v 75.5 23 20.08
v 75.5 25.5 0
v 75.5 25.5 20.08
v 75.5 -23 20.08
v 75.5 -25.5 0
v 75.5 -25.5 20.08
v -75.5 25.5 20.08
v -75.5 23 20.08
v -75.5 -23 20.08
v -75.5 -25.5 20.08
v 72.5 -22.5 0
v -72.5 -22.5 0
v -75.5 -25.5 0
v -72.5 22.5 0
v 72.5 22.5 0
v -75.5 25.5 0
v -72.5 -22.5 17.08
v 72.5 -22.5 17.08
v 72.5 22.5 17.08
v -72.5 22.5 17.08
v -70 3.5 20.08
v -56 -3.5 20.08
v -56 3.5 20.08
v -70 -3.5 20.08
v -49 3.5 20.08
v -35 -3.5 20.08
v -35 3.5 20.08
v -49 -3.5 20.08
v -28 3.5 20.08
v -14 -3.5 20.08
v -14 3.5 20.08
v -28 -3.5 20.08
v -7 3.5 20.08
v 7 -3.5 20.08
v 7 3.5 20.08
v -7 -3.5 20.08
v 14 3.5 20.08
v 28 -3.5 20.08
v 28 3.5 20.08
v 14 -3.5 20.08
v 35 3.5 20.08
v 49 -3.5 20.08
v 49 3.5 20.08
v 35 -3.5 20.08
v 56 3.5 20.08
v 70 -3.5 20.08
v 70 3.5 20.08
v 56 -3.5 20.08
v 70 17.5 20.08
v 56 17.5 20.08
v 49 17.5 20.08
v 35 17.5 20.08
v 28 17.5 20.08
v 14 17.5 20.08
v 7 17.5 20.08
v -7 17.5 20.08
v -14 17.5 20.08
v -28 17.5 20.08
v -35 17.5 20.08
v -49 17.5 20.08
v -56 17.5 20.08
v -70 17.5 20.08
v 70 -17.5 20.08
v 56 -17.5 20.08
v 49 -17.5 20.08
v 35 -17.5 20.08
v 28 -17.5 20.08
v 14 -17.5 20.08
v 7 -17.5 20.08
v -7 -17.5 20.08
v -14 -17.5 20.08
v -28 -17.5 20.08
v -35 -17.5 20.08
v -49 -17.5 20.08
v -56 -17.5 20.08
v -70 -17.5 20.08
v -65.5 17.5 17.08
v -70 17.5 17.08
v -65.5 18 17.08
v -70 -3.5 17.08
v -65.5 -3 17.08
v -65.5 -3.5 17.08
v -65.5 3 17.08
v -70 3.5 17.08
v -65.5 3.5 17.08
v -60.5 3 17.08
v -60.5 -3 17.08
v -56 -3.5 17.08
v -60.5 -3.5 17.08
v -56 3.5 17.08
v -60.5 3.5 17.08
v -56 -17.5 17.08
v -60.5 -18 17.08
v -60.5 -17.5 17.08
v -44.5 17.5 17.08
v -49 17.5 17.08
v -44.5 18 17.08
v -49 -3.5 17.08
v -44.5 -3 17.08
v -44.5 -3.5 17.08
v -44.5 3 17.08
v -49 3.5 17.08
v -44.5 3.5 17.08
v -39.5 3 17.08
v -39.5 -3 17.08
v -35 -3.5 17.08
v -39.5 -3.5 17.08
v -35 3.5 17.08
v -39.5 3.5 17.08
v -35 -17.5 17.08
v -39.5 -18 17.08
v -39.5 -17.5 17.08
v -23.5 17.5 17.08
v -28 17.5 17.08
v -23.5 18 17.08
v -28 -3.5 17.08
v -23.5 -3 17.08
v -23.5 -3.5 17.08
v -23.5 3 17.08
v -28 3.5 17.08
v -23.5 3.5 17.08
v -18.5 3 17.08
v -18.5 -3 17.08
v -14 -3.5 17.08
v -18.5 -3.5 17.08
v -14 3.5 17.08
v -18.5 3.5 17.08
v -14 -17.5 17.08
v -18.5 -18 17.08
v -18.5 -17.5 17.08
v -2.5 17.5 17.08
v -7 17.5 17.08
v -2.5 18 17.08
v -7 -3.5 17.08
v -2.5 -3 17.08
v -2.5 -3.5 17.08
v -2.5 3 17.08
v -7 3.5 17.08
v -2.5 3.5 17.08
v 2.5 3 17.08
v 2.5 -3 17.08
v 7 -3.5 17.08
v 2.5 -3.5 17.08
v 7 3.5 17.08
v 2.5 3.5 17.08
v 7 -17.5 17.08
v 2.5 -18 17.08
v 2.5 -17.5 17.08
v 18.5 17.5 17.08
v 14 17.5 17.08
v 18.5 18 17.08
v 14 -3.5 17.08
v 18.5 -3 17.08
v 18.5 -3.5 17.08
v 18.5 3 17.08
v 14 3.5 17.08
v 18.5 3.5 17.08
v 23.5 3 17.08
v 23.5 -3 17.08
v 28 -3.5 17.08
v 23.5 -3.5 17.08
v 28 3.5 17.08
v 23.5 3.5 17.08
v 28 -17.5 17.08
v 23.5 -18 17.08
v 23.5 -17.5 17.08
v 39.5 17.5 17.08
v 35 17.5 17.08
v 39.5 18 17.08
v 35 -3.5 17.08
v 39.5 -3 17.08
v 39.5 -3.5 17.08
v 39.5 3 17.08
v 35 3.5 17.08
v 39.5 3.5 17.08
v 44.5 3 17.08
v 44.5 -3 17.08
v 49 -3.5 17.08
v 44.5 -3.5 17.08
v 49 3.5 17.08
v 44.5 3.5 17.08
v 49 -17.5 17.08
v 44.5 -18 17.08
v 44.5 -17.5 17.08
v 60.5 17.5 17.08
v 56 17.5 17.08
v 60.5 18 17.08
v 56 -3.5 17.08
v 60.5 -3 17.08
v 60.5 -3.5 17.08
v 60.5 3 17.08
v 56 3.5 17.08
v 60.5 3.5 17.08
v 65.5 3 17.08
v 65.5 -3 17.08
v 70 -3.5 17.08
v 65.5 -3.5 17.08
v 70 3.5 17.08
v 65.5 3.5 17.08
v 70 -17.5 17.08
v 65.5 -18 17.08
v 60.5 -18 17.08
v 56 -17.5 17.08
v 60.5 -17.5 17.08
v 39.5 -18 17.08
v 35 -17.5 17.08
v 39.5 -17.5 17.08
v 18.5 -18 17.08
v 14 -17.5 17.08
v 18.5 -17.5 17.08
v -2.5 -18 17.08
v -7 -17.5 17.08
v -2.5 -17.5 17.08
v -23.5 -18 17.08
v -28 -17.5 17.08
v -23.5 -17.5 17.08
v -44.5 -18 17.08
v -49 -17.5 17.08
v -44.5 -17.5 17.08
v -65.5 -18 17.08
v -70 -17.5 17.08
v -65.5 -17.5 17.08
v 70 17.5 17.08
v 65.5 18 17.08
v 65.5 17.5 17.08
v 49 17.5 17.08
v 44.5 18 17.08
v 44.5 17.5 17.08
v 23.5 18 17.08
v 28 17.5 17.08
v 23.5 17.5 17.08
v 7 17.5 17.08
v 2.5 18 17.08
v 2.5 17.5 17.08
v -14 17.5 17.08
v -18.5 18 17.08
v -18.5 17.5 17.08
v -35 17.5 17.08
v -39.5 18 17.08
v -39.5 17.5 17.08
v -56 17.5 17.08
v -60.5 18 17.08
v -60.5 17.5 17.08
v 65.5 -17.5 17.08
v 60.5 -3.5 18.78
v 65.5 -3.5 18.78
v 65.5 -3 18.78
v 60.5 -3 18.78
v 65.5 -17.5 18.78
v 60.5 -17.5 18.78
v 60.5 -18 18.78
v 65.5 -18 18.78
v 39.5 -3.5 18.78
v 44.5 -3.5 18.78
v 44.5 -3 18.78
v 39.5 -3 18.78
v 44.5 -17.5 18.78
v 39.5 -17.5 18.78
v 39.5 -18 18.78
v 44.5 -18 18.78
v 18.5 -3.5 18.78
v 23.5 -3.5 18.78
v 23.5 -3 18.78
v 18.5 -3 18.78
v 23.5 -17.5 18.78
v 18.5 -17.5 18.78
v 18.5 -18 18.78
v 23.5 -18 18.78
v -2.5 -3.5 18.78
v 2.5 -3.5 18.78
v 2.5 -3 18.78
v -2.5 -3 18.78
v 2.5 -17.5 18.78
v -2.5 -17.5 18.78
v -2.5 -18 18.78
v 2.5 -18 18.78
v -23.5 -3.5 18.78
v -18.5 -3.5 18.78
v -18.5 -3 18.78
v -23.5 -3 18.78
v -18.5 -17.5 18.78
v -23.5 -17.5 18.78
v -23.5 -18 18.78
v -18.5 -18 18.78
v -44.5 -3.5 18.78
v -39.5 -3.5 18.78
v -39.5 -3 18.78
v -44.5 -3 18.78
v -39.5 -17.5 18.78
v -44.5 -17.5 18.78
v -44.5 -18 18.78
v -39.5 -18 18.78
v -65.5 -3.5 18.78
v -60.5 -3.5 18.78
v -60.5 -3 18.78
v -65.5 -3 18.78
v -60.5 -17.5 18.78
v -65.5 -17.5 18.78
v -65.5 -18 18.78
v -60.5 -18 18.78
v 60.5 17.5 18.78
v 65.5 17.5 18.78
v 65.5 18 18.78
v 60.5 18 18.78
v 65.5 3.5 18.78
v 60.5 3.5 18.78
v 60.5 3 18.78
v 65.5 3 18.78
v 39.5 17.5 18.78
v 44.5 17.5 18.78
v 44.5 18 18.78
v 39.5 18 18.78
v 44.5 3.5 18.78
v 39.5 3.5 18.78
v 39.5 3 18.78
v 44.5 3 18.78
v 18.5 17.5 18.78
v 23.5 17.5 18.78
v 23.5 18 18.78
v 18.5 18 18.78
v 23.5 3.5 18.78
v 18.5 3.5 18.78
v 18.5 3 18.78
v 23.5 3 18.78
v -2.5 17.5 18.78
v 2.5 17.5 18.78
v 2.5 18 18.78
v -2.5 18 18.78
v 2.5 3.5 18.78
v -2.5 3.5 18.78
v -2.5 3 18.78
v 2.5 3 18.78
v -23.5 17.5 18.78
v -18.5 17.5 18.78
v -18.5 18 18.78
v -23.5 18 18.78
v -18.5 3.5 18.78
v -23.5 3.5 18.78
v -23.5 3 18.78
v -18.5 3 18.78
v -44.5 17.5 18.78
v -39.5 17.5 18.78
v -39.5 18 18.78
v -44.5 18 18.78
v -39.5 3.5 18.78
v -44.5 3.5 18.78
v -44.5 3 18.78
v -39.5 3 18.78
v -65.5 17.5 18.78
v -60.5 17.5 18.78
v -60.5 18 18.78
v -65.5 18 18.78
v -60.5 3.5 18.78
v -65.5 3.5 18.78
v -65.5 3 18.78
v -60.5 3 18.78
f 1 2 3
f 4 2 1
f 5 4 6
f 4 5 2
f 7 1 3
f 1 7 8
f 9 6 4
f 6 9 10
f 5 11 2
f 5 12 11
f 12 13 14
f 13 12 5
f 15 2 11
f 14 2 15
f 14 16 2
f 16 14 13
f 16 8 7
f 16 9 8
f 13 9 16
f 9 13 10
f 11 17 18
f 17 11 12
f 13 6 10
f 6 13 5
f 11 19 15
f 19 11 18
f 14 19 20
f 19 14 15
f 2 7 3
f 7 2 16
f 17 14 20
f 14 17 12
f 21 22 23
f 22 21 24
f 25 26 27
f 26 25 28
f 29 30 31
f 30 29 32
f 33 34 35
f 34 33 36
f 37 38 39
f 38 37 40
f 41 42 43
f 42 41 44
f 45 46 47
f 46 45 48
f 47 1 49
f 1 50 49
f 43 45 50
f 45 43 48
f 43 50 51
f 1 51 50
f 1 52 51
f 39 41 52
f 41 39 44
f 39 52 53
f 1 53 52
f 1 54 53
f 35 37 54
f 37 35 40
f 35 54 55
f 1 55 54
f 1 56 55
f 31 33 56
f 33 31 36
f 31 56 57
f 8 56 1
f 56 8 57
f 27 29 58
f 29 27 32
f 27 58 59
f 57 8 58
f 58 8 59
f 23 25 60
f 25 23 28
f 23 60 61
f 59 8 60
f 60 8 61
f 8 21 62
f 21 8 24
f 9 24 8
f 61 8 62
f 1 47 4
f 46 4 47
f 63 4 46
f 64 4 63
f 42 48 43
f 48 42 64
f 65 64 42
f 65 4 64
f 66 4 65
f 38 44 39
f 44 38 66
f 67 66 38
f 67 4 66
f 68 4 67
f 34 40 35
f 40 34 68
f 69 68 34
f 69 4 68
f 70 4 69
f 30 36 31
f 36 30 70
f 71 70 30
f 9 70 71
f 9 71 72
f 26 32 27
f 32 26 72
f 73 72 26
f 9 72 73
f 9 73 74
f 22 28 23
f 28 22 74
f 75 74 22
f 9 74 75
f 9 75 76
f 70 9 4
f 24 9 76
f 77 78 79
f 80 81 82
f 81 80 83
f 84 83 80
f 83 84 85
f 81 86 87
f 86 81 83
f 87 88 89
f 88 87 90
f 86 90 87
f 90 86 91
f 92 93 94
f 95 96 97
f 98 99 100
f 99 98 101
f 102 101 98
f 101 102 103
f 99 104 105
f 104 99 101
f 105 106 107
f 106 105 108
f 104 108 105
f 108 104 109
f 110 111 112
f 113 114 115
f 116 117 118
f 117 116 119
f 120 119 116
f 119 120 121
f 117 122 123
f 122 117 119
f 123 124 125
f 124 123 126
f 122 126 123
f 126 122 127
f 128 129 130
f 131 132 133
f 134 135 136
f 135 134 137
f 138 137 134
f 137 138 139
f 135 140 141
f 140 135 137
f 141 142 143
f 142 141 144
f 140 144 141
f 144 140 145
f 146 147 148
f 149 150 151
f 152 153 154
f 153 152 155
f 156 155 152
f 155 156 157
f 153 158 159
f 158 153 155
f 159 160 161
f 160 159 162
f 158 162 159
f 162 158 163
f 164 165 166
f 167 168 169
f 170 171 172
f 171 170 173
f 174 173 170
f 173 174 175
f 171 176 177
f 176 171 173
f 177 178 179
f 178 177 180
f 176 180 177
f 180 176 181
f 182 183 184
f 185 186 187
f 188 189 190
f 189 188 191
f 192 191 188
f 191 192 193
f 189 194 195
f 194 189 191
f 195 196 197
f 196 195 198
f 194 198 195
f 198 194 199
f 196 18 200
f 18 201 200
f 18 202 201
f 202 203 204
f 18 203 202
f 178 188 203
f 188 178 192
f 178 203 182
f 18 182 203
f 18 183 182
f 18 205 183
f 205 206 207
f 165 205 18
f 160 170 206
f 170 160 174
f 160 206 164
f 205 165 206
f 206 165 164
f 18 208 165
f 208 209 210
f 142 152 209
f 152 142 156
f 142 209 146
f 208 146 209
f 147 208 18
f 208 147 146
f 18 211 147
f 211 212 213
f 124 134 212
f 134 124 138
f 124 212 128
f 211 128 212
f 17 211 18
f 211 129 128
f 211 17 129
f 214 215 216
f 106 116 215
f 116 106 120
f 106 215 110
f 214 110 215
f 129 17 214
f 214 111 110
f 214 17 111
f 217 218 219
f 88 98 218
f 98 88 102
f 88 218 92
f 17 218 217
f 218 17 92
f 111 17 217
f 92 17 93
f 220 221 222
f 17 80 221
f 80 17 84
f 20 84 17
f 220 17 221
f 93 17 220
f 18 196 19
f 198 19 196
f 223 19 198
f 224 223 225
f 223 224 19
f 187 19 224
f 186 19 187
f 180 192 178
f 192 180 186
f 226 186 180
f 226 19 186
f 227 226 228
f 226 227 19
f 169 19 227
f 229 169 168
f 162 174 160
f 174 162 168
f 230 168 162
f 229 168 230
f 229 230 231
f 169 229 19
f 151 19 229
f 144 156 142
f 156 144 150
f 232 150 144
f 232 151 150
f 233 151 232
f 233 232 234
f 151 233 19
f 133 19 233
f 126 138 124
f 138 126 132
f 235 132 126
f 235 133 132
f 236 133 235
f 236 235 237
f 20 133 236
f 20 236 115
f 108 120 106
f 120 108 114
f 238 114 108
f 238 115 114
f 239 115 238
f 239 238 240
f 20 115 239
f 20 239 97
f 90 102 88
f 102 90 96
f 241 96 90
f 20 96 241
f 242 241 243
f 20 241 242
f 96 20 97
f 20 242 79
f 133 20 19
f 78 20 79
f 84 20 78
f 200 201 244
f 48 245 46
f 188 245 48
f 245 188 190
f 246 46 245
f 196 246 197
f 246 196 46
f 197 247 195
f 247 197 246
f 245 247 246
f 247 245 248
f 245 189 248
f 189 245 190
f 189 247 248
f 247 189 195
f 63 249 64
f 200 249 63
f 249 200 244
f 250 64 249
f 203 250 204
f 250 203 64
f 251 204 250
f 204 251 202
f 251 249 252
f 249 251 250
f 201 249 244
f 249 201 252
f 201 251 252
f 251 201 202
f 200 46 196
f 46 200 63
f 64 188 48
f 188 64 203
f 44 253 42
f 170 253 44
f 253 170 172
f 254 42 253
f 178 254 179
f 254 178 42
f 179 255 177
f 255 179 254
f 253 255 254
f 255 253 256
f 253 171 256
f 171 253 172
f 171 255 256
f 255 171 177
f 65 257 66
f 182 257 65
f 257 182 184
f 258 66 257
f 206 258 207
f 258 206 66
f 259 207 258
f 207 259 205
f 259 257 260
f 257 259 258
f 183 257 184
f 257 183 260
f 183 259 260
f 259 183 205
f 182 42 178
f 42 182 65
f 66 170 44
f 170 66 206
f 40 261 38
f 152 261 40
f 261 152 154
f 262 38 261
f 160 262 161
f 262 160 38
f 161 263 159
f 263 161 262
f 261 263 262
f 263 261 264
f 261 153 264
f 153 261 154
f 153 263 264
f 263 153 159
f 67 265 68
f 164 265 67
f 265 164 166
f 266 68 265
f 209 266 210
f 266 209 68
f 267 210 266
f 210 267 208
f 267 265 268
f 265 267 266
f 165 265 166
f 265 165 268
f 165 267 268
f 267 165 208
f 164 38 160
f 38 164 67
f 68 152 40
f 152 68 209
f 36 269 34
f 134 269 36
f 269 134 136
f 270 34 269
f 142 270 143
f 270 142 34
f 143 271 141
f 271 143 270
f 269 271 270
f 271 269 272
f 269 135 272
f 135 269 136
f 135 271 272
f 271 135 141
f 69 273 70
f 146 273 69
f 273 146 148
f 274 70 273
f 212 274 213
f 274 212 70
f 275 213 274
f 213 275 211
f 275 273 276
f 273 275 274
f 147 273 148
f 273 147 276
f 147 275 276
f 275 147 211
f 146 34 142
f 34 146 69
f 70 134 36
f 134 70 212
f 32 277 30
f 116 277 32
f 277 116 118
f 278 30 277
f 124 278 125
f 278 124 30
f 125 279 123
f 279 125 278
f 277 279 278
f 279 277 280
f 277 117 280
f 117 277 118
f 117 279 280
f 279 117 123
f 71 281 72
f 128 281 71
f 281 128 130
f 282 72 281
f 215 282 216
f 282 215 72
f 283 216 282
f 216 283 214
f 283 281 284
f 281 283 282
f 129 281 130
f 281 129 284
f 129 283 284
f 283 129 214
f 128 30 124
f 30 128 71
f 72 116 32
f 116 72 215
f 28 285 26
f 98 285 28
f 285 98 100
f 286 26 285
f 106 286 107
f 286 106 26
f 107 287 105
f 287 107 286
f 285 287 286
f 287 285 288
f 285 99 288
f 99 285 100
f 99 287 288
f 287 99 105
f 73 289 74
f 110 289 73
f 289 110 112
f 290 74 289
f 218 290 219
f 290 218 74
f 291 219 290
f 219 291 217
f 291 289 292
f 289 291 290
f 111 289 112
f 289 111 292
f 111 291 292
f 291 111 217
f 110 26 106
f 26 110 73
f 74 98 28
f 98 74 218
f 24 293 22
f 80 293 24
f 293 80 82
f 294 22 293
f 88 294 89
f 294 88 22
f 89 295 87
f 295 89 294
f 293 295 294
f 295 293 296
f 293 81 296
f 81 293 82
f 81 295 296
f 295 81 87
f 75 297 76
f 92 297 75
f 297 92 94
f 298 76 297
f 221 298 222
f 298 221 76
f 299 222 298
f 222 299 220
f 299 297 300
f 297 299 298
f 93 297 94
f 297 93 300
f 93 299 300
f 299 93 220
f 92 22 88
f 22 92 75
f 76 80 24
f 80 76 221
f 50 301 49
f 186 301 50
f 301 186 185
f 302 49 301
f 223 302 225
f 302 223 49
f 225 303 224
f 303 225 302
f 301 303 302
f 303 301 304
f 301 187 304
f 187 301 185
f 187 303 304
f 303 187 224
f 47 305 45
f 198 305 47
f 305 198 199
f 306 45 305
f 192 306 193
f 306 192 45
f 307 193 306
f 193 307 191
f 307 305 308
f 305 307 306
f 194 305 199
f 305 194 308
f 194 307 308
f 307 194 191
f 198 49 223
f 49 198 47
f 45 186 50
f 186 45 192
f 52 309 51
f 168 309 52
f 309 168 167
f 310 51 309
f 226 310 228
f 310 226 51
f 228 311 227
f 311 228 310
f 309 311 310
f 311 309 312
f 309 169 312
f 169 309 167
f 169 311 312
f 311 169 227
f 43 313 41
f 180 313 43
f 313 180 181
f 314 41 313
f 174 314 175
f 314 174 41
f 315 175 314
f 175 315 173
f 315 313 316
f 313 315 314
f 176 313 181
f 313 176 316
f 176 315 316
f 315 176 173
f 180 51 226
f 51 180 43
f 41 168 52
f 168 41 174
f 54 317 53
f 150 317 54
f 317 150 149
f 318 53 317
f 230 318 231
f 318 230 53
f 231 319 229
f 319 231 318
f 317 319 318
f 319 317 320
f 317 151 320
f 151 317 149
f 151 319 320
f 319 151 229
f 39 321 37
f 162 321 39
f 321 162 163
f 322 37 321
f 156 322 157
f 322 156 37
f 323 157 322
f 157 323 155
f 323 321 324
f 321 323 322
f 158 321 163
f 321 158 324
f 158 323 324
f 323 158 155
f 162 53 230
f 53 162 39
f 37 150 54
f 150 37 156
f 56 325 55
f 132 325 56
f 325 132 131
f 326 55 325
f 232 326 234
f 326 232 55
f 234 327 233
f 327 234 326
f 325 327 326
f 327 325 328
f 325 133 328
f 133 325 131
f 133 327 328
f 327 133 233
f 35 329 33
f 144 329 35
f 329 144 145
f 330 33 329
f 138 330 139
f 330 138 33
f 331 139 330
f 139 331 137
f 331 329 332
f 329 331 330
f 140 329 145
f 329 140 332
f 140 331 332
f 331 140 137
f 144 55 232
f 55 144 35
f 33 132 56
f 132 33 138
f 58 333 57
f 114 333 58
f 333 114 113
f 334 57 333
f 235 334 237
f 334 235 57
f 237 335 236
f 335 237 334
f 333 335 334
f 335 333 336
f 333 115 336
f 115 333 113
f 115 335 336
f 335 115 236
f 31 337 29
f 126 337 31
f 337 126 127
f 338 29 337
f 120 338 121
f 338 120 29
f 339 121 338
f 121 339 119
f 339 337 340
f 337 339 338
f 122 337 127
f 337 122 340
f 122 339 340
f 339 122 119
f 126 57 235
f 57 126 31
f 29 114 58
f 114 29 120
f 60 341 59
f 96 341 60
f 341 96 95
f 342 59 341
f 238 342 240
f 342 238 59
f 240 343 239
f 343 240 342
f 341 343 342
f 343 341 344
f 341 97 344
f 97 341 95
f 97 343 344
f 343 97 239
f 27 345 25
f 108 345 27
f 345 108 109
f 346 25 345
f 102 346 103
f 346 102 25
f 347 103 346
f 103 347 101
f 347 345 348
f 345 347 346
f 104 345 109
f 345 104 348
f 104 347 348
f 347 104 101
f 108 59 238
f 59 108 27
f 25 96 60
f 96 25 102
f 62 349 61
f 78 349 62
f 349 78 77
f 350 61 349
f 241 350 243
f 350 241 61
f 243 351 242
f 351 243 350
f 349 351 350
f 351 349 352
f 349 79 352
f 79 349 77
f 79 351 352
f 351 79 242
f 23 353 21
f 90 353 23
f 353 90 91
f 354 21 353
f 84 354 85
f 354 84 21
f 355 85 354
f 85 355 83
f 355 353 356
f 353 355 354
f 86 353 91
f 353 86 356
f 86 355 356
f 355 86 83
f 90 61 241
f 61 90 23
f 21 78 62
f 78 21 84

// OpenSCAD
// Generated by SolidPython 1.0.5 on 2021-02-06 18:46:46


union() {
	translate(v = [0, 0, 10.0400000000]) {
		union() {
			translate(v = [0, -24.0000000000, 0]) {
				cube(center = true, size = [151.0000000000, 3, 20.0800000000]);
			}
			translate(v = [74.0000000000, 0, 0]) {
				cube(center = true, size = [3, 46.0000000000, 20.0800000000]);
			}
			rotate(a = 180) {
				translate(v = [0, -24.0000000000, 0]) {
					cube(center = true, size = [151.0000000000, 3, 20.0800000000]);
				}
			}
			rotate(a = 180) {
				translate(v = [74.0000000000, 0, 0]) {
					cube(center = true, size = [3, 46.0000000000, 20.0800000000]);
				}
			}
		}
	}
	translate(v = [0, 0, 17.0800000000]) {
		translate(v = [63.0000000000, 0, 0]) {
			translate(v = [0, -10.5000000000, 0]) {
				translate(v = [-0.0000000000, 0, 0]) {
					translate(v = [0, 0.0000000000, 0]) {
						union() {
							translate(v = [0, 7.7500000000, 0]) {
								translate(v = [0, 0, 1.5000000000]) {
									difference() {
										cube(center = true, size = [17.0000000000, 1.5000000000, 3]);
										translate(v = [0, 0, -1.3000000000]) {
											translate(v = [0, -0.7500000000, 0]) {
												cube(center = true, size = [5, 1.0000000000, 3]);
											}
										}
									}
								}
							}
							translate(v = [-7.7500000000, 0, 0]) {
								translate(v = [0, 0, 1.5000000000]) {
									cube(center = true, size = [1.5000000000, 17.0000000000, 3]);
								}
							}
							mirror(v = [0, 1, 0]) {
								mirror(v = [1, 0, 0]) {
									union() {
										translate(v = [0, 7.7500000000, 0]) {
											translate(v = [0, 0, 1.5000000000]) {
												difference() {
													cube(center = true, size = [17.0000000000, 1.5000000000, 3]);
													translate(v = [0, 0, -1.3000000000]) {
														translate(v = [0, -0.7500000000, 0]) {
															cube(center = true, size = [5, 1.0000000000, 3]);
														}
													}
												}
											}
										}
										translate(v = [-7.7500000000, 0, 0]) {
											translate(v = [0, 0, 1.5000000000]) {
												cube(center = true, size = [1.5000000000, 17.0000000000, 3]);
											}
										}
									}
								}
							}
							translate(v = [0, 0, 1.5000000000]) {
								translate(v = [0, 10.5000000000, 0]) {
									cube(center = true, size = [25.0000000000, 4, 3]);
								}
							}
							rotate(a = 90) {
								translate(v = [0, 0, 1.5000000000]) {
									translate(v = [0, 10.5000000000, 0]) {
										cube(center = true, size = [25.0000000000, 4, 3]);
									}
								}
							}
							rotate(a = 180) {
								translate(v = [0, 0, 1.5000000000]) {
									translate(v = [0, 10.5000000000, 0]) {
										cube(center = true, size = [25.0000000000, 4, 3]);
									}
								}
							}
							rotate(a = 270) {
								translate(v = [0, 0, 1.5000000000]) {
									translate(v = [0, 10.5000000000, 0]) {
										cube(center = true, size = [25.0000000000, 4, 3]);
									}
								}
							}
						}
					}
				}
				translate(v = [-21.0000000000, 0, 0]) {
					translate(v = [0, 0.0000000000, 0]) {
						union() {
							translate(v = [0, 7.7500000000, 0]) {
								translate(v = [0, 0, 1.5000000000]) {
									difference() {
										cube(center = true, size = [17.0000000000, 1.5000000000, 3]);
										translate(v = [0, 0, -1.3000000000]) {
											translate(v = [0, -0.7500000000, 0]) {
												cube(center = true, size = [5, 1.0000000000, 3]);
											}
										}
									}
								}
							}
							translate(v = [-7.7500000000, 0, 0]) {
								translate(v = [0, 0, 1.5000000000]) {
									cube(center = true, size = [1.5000000000, 17.0000000000, 3]);
								}
							}
							mirror(v = [0, 1, 0]) {
								mirror(v = [1, 0, 0]) {
									union() {
										translate(v = [0, 7.7500000000, 0]) {
											translate(v = [0, 0, 1.5000000000]) {
												difference() {
													cube(center = true, size = [17.0000000000, 1.5000000000, 3]);
													translate(v = [0, 0, -1.3000000000]) {
														translate(v = [0, -0.7500000000, 0]) {
															cube(center = true, size = [5, 1.0000000000, 3]);
														}
													}
												}
											}
										}
										translate(v = [-7.7500000000, 0, 0]) {
											translate(v = [0, 0, 1.5000000000]) {
												cube(center = true, size = [1.5000000000, 17.0000000000, 3]);
											}
										}
									}
								}
							}
							translate(v = [0, 0, 1.5000000000]) {
								translate(v = [0, 10.5000000000, 0]) {
									cube(center = true, size = [25.0000000000, 4, 3]);
								}
							}
							rotate(a = 90) {
								translate(v = [0, 0, 1.5000000000]) {
									translate(v = [0, 10.5000000000, 0]) {
										cube(center = true, size = [25.0000000000, 4, 3]);
									}
								}
							}
							rotate(a = 180) {
								translate(v = [0, 0, 1.5000000000]) {
									translate(v = [0, 10.5000000000, 0]) {
										cube(center = true, size = [25.0000000000, 4, 3]);
									}
								}
							}
							rotate(a = 270) {
								translate(v = [0, 0, 1.5000000000]) {
									translate(v = [0, 10.5000000000, 0]) {
										cube(center = true, size = [25.0000000000, 4, 3]);
									}
								}
							}
						}
					}
				}
				translate(v = [-42.0000000000, 0, 0]) {
					translate(v = [0, 0.0000000000, 0]) {
						union() {
							translate(v = [0, 7.7500000000, 0]) {
								translate(v = [0, 0, 1.5000000000]) {
									difference() {
										cube(center = true, size = [17.0000000000, 1.5000000000, 3]);
										translate(v = [0, 0, -1.3000000000]) {
											translate(v = [0, -0.7500000000, 0]) {
												cube(center = true, size = [5, 1.0000000000, 3]);
											}
										}
									}
								}
							}
							translate(v = [-7.7500000000, 0, 0]) {
								translate(v = [0, 0, 1.5000000000]) {
									cube(center = true, size = [1.5000000000, 17.0000000000, 3]);
								}
							}
							mirror(v = [0, 1, 0]) {
								mirror(v = [1, 0, 0]) {
									union() {
										translate(v = [0, 7.7500000000, 0]) {
											translate(v = [0, 0, 1.5000000000]) {
												difference() {
													cube(center = true, size = [17.0000000000, 1.5000000000, 3]);
													translate(v = [0, 0, -1.3000000000]) {
														translate(v = [0, -0.7500000000, 0]) {
															cube(center = true, size = [5, 1.0000000000, 3]);
														}
													}
												}
											}
										}
										translate(v = [-7.7500000000, 0, 0]) {
											translate(v = [0, 0, 1.5000000000]) {
												cube(center = true, size = [1.5000000000, 17.0000000000, 3]);
											}
										}
									}
								}
							}
							translate(v = [0, 0, 1.5000000000]) {
								translate(v = [0, 10.5000000000, 0]) {
									cube(center = true, size = [25.0000000000, 4, 3]);
								}
							}
							rotate(a = 90) {
								translate(v = [0, 0, 1.5000000000]) {
									translate(v = [0, 10.5000000000, 0]) {
										cube(center = true, size = [25.0000000000, 4, 3]);
									}
								}
							}
							rotate(a = 180) {
								translate(v = [0, 0, 1.5000000000]) {
									translate(v = [0, 10.5000000000, 0]) {
										cube(center = true, size = [25.0000000000, 4, 3]);
									}
								}
							}
							rotate(a = 270) {
								translate(v = [0, 0, 1.5000000000]) {
									translate(v = [0, 10.5000000000, 0]) {
										cube(center = true, size = [25.0000000000, 4, 3]);
									}
								}
							}
						}
					}
				}
				translate(v = [-63.0000000000, 0, 0]) {
					translate(v = [0, 0.0000000000, 0]) {
						union() {
							translate(v = [0, 7.7500000000, 0]) {
								translate(v = [0, 0, 1.5000000000]) {
									difference() {
										cube(center = true, size = [17.0000000000, 1.5000000000, 3]);
										translate(v = [0, 0, -1.3000000000]) {
											translate(v = [0, -0.7500000000, 0]) {
												cube(center = true, size = [5, 1.0000000000, 3]);
											}
										}
									}
								}
							}
							translate(v = [-7.7500000000, 0, 0]) {
								translate(v = [0, 0, 1.5000000000]) {
									cube(center = true, size = [1.5000000000, 17.0000000000, 3]);
								}
							}
							mirror(v = [0, 1, 0]) {
								mirror(v = [1, 0, 0]) {
									union() {
										translate(v = [0, 7.7500000000, 0]) {
											translate(v = [0, 0, 1.5000000000]) {
												difference() {
													cube(center = true, size = [17.0000000000, 1.5000000000, 3]);
													translate(v = [0, 0, -1.3000000000]) {
														translate(v = [0, -0.7500000000, 0]) {
															cube(center = true, size = [5, 1.0000000000, 3]);
														}
													}
												}
											}
										}
										translate(v = [-7.7500000000, 0, 0]) {
											translate(v = [0, 0, 1.5000000000]) {
												cube(center = true, size = [1.5000000000, 17.0000000000, 3]);
											}
										}
									}
								}
							}
							translate(v = [0, 0, 1.5000000000]) {
								translate(v = [0, 10.5000000000, 0]) {
									cube(center = true, size = [25.0000000000, 4, 3]);
								}
							}
							rotate(a = 90) {
								translate(v = [0, 0, 1.5000000000]) {
									translate(v = [0, 10.5000000000, 0]) {
										cube(center = true, size = [25.0000000000, 4, 3]);
									}
								}
							}
							rotate(a = 180) {
								translate(v = [0, 0, 1.5000000000]) {
									translate(v = [0, 10.5000000000, 0]) {
										cube(center = true, size = [25.0000000000, 4, 3]);
									}
								}
							}
							rotate(a = 270) {
								translate(v = [0, 0, 1.5000000000]) {
									translate(v = [0, 10.5000000000, 0]) {
										cube(center = true, size = [25.0000000000, 4, 3]);
									}
								}
							}
						}
					}
				}
				translate(v = [-84.0000000000, 0, 0]) {
					translate(v = [0, 0.0000000000, 0]) {
						union() {
							translate(v = [0, 7.7500000000, 0]) {
								translate(v = [0, 0, 1.5000000000]) {
									difference() {
										cube(center = true, size = [17.0000000000, 1.5000000000, 3]);
										translate(v = [0, 0, -1.3000000000]) {
											translate(v = [0, -0.7500000000, 0]) {
												cube(center = true, size = [5, 1.0000000000, 3]);
											}
										}
									}
								}
							}
							translate(v = [-7.7500000000, 0, 0]) {
								translate(v = [0, 0, 1.5000000000]) {
									cube(center = true, size = [1.5000000000, 17.0000000000, 3]);
								}
							}
							mirror(v = [0, 1, 0]) {
								mirror(v = [1, 0, 0]) {
									union() {
										translate(v = [0, 7.7500000000, 0]) {
											translate(v = [0, 0, 1.5000000000]) {
												difference() {
													cube(center = true, size = [17.0000000000, 1.5000000000, 3]);
													translate(v = [0, 0, -1.3000000000]) {
														translate(v = [0, -0.7500000000, 0]) {
															cube(center = true, size = [5, 1.0000000000, 3]);
														}
													}
												}
											}
										}
										translate(v = [-7.7500000000, 0, 0]) {
											translate(v = [0, 0, 1.5000000000]) {
												cube(center = true, size = [1.5000000000, 17.0000000000, 3]);
											}
										}
									}
								}
							}
							translate(v = [0, 0, 1.5000000000]) {
								translate(v = [0, 10.5000000000, 0]) {
									cube(center = true, size = [25.0000000000, 4, 3]);
								}
							}
							rotate(a = 90) {
								translate(v = [0, 0, 1.5000000000]) {
									translate(v = [0, 10.5000000000, 0]) {
										cube(center = true, size = [25.0000000000, 4, 3]);
									}
								}
							}
							rotate(a = 180) {
								translate(v = [0, 0, 1.5000000000]) {
									translate(v = [0, 10.5000000000, 0]) {
										cube(center = true, size = [25.0000000000, 4, 3]);
									}
								}
							}
							rotate(a = 270) {
								translate(v = [0, 0, 1.5000000000]) {
									translate(v = [0, 10.5000000000, 0]) {
										cube(center = true, size = [25.0000000000, 4, 3]);
									}
								}
							}
						}
					}
				}
				translate(v = [-105.0000000000, 0, 0]) {
					translate(v = [0, 0.0000000000, 0]) {
						union() {
							translate(v = [0, 7.7500000000, 0]) {
								translate(v = [0, 0, 1.5000000000]) {
									difference() {
										cube(center = true, size = [17.0000000000, 1.5000000000, 3]);
										translate(v = [0, 0, -1.3000000000]) {
											translate(v = [0, -0.7500000000, 0]) {
												cube(center = true, size = [5, 1.0000000000, 3]);
											}
										}
									}
								}
							}
							translate(v = [-7.7500000000, 0, 0]) {
								translate(v = [0, 0, 1.5000000000]) {
									cube(center = true, size = [1.5000000000, 17.0000000000, 3]);
								}
							}
							mirror(v = [0, 1, 0]) {
								mirror(v = [1, 0, 0]) {
									union() {
										translate(v = [0, 7.7500000000, 0]) {
											translate(v = [0, 0, 1.5000000000]) {
												difference() {
													cube(center = true, size = [17.0000000000, 1.5000000000, 3]);
													translate(v = [0, 0, -1.3000000000]) {
														translate(v = [0, -0.7500000000, 0]) {
															cube(center = true, size = [5, 1.0000000000, 3]);
														}
													}
												}
											}
										}
										translate(v = [-7.7500000000, 0, 0]) {
											translate(v = [0, 0, 1.5000000000]) {
												cube(center = true, size = [1.5000000000, 17.0000000000, 3]);
											}
										}
									}
								}
							}
							translate(v = [0, 0, 1.5000000000]) {
								translate(v = [0, 10.5000000000, 0]) {
									cube(center = true, size = [25.0000000000, 4, 3]);
								}
							}
							rotate(a = 90) {
								translate(v = [0, 0, 1.5000000000]) {
									translate(v = [0, 10.5000000000, 0]) {
										cube(center = true, size = [25.0000000000, 4, 3]);
									}
								}
							}
							rotate(a = 180) {
								translate(v = [0, 0, 1.5000000000]) {
									translate(v = [0, 10.5000000000, 0]) {
										cube(center = true, size = [25.0000000000, 4, 3]);
									}
								}
							}
							rotate(a = 270) {
								translate(v = [0, 0, 1.5000000000]) {
									translate(v = [0, 10.5000000000, 0]) {
										cube(center = true, size = [25.0000000000, 4, 3]);
									}
								}
							}
						}
					}
				}
				translate(v = [-126.0000000000, 0, 0]) {
					translate(v = [0, 0.0000000000, 0]) {
						union() {
							translate(v = [0, 7.7500000000, 0]) {
								translate(v = [0, 0, 1.5000000000]) {
									difference() {
										cube(center = true, size = [17.0000000000, 1.5000000000, 3]);
										translate(v = [0, 0, -1.3000000000]) {
											translate(v = [0, -0.7500000000, 0]) {
												cube(center = true, size = [5, 1.0000000000, 3]);
											}
										}
									}
								}
							}
							translate(v = [-7.7500000000, 0, 0]) {
								translate(v = [0, 0, 1.5000000000]) {
									cube(center = true, size = [1.5000000000, 17.0000000000, 3]);
								}
							}
							mirror(v = [0, 1, 0]) {
								mirror(v = [1, 0, 0]) {
									union() {
										translate(v = [0, 7.7500000000, 0]) {
											translate(v = [0, 0, 1.5000000000]) {
												difference() {
													cube(center = true, size = [17.0000000000, 1.5000000000, 3]);
													translate(v = [0, 0, -1.3000000000]) {
														translate(v = [0, -0.7500000000, 0]) {
															cube(center = true, size = [5, 1.0000000000, 3]);
														}
													}
												}
											}
										}
										translate(v = [-7.7500000000, 0, 0]) {
											translate(v = [0, 0, 1.5000000000]) {
												cube(center = true, size = [1.5000000000, 17.0000000000, 3]);
											}
										}
									}
								}
							}
							translate(v = [0, 0, 1.5000000000]) {
								translate(v = [0, 10.5000000000, 0]) {
									cube(center = true, size = [25.0000000000, 4, 3]);
								}
							}
							rotate(a = 90) {
								translate(v = [0, 0, 1.5000000000]) {
									translate(v = [0, 10.5000000000, 0]) {
										cube(center = true, size = [25.0000000000, 4, 3]);
									}
								}
							}
							rotate(a = 180) {
								translate(v = [0, 0, 1.5000000000]) {
									translate(v = [0, 10.5000000000, 0]) {
										cube(center = true, size = [25.0000000000, 4, 3]);
									}
								}
							}
							rotate(a = 270) {
								translate(v = [0, 0, 1.5000000000]) {
									translate(v = [0, 10.5000000000, 0]) {
										cube(center = true, size = [25.0000000000, 4, 3]);
									}
								}
							}
						}
					}
				}
				translate(v = [-0.0000000000, 0, 0]) {
					translate(v = [0, 21.0000000000, 0]) {
						union() {
							translate(v = [0, 7.7500000000, 0]) {
								translate(v = [0, 0, 1.5000000000]) {
									difference() {
										cube(center = true, size = [17.0000000000, 1.5000000000, 3]);
										translate(v = [0, 0, -1.3000000000]) {
											translate(v = [0, -0.7500000000, 0]) {
												cube(center = true, size = [5, 1.0000000000, 3]);
											}
										}
									}
								}
							}
							translate(v = [-7.7500000000, 0, 0]) {
								translate(v = [0, 0, 1.5000000000]) {
									cube(center = true, size = [1.5000000000, 17.0000000000, 3]);
								}
							}
							mirror(v = [0, 1, 0]) {
								mirror(v = [1, 0, 0]) {
									union() {
										translate(v = [0, 7.7500000000, 0]) {
											translate(v = [0, 0, 1.5000000000]) {
												difference() {
													cube(center = true, size = [17.0000000000, 1.5000000000, 3]);
													translate(v = [0, 0, -1.3000000000]) {
														translate(v = [0, -0.7500000000, 0]) {
															cube(center = true, size = [5, 1.0000000000, 3]);
														}
													}
												}
											}
										}
										translate(v = [-7.7500000000, 0, 0]) {
											translate(v = [0, 0, 1.5000000000]) {
												cube(center = true, size = [1.5000000000, 17.0000000000, 3]);
											}
										}
									}
								}
							}
							translate(v = [0, 0, 1.5000000000]) {
								translate(v = [0, 10.5000000000, 0]) {
									cube(center = true, size = [25.0000000000, 4, 3]);
								}
							}
							rotate(a = 90) {
								translate(v = [0, 0, 1.5000000000]) {
									translate(v = [0, 10.5000000000, 0]) {
										cube(center = true, size = [25.0000000000, 4, 3]);
									}
								}
							}
							rotate(a = 180) {
								translate(v = [0, 0, 1.5000000000]) {
									translate(v = [0, 10.5000000000, 0]) {
										cube(center = true, size = [25.0000000000, 4, 3]);
									}
								}
							}
							rotate(a = 270) {
								translate(v = [0, 0, 1.5000000000]) {
									translate(v = [0, 10.5000000000, 0]) {
										cube(center = true, size = [25.0000000000, 4, 3]);
									}
								}
							}
						}
					}
				}
				translate(v = [-21.0000000000, 0, 0]) {
					translate(v = [0, 21.0000000000, 0]) {
						union() {
							translate(v = [0, 7.7500000000, 0]) {
								translate(v = [0, 0, 1.5000000000]) {
									difference() {
										cube(center = true, size = [17.0000000000, 1.5000000000, 3]);
										translate(v = [0, 0, -1.3000000000]) {
											translate(v = [0, -0.7500000000, 0]) {
												cube(center = true, size = [5, 1.0000000000, 3]);
											}
										}
									}
								}
							}
							translate(v = [-7.7500000000, 0, 0]) {
								translate(v = [0, 0, 1.5000000000]) {
									cube(center = true, size = [1.5000000000, 17.0000000000, 3]);
								}
							}
							mirror(v = [0, 1, 0]) {
								mirror(v = [1, 0, 0]) {
									union() {
										translate(v = [0, 7.7500000000, 0]) {
											translate(v = [0, 0, 1.5000000000]) {
												difference() {
													cube(center = true, size = [17.0000000000, 1.5000000000, 3]);
													translate(v = [0, 0, -1.3000000000]) {
														translate(v = [0, -0.7500000000, 0]) {
															cube(center = true, size = [5, 1.0000000000, 3]);
														}
													}
												}
											}
										}
										translate(v = [-7.7500000000, 0, 0]) {
											translate(v = [0, 0, 1.5000000000]) {
												cube(center = true, size = [1.5000000000, 17.0000000000, 3]);
											}
										}
									}
								}
							}
							translate(v = [0, 0, 1.5000000000]) {
								translate(v = [0, 10.5000000000, 0]) {
									cube(center = true, size = [25.0000000000, 4, 3]);
								}
							}
							rotate(a = 90) {
								translate(v = [0, 0, 1.5000000000]) {
									translate(v = [0, 10.5000000000, 0]) {
										cube(center = true, size = [25.0000000000, 4, 3]);
									}
								}
							}
							rotate(a = 180) {
								translate(v = [0, 0, 1.5000000000]) {
									translate(v = [0, 10.5000000000, 0]) {
										cube(center = true, size = [25.0000000000, 4, 3]);
									}
								}
							}
							rotate(a = 270) {
								translate(v = [0, 0, 1.5000000000]) {
									translate(v = [0, 10.5000000000, 0]) {
										cube(center = true, size = [25.0000000000, 4, 3]);
									}
								}
							}
						}
					}
				}
				translate(v = [-42.0000000000, 0, 0]) {
					translate(v = [0, 21.0000000000, 0]) {
						union() {
							translate(v = [0, 7.7500000000, 0]) {
								translate(v = [0, 0, 1.5000000000]) {
									difference() {
										cube(center = true, size = [17.0000000000, 1.5000000000, 3]);
										translate(v = [0, 0, -1.3000000000]) {
											translate(v = [0, -0.7500000000, 0]) {
												cube(center = true, size = [5, 1.0000000000, 3]);
											}
										}
									}
								}
							}
							translate(v = [-7.7500000000, 0, 0]) {
								translate(v = [0, 0, 1.5000000000]) {
									cube(center = true, size = [1.5000000000, 17.0000000000, 3]);
								}
							}
							mirror(v = [0, 1, 0]) {
								mirror(v = [1, 0, 0]) {
									union() {
										translate(v = [0, 7.7500000000, 0]) {
											translate(v = [0, 0, 1.5000000000]) {
												difference() {
													cube(center = true, size = [17.0000000000, 1.5000000000, 3]);
													translate(v = [0, 0, -1.3000000000]) {
														translate(v = [0, -0.7500000000, 0]) {
															cube(center = true, size = [5, 1.0000000000, 3]);
														}
													}
												}
											}
										}
										translate(v = [-7.7500000000, 0, 0]) {
											translate(v = [0, 0, 1.5000000000]) {
												cube(center = true, size = [1.5000000000, 17.0000000000, 3]);
											}
										}
									}
								}
							}
							translate(v = [0, 0, 1.5000000000]) {
								translate(v = [0, 10.5000000000, 0]) {
									cube(center = true, size = [25.0000000000, 4, 3]);
								}
							}
							rotate(a = 90) {
								translate(v = [0, 0, 1.5000000000]) {
									translate(v = [0, 10.5000000000, 0]) {
										cube(center = true, size = [25.0000000000, 4, 3]);
									}
								}
							}
							rotate(a = 180) {
								translate(v = [0, 0, 1.5000000000]) {
									translate(v = [0, 10.5000000000, 0]) {
										cube(center = true, size = [25.0000000000, 4, 3]);
									}
								}
							}
							rotate(a = 270) {
								translate(v = [0, 0, 1.5000000000]) {
									translate(v = [0, 10.5000000000, 0]) {
										cube(center = true, size = [25.0000000000, 4, 3]);
									}
								}
							}
						}
					}
				}
				translate(v = [-63.0000000000, 0, 0]) {
					translate(v = [0, 21.0000000000, 0]) {
						union() {
							translate(v = [0, 7.7500000000, 0]) {
								translate(v = [0, 0, 1.5000000000]) {
									difference() {
										cube(center = true, size = [17.0000000000, 1.5000000000, 3]);
										translate(v = [0, 0, -1.3000000000]) {
											translate(v = [0, -0.7500000000, 0]) {
												cube(center = true, size = [5, 1.0000000000, 3]);
											}
										}
									}
								}
							}
							translate(v = [-7.7500000000, 0, 0]) {
								translate(v = [0, 0, 1.5000000000]) {
									cube(center = true, size = [1.5000000000, 17.0000000000, 3]);
								}
							}
							mirror(v = [0, 1, 0]) {
								mirror(v = [1, 0, 0]) {
									union() {
										translate(v = [0, 7.7500000000, 0]) {
											translate(v = [0, 0, 1.5000000000]) {
												difference() {
													cube(center = true, size = [17.0000000000, 1.5000000000, 3]);
													translate(v = [0, 0, -1.3000000000]) {
														translate(v = [0, -0.7500000000, 0]) {
															cube(center = true, size = [5, 1.0000000000, 3]);
														}
													}
												}
											}
										}
										translate(v = [-7.7500000000, 0, 0]) {
											translate(v = [0, 0, 1.5000000000]) {
												cube(center = true, size = [1.5000000000, 17.0000000000, 3]);
											}
										}
									}
								}
							}
							translate(v = [0, 0, 1.5000000000]) {
								translate(v = [0, 10.5000000000, 0]) {
									cube(center = true, size = [25.0000000000, 4, 3]);
								}
							}
							rotate(a = 90) {
								translate(v = [0, 0, 1.5000000000]) {
									translate(v = [0, 10.5000000000, 0]) {
										cube(center = true, size = [25.0000000000, 4, 3]);
									}
								}
							}
							rotate(a = 180) {
								translate(v = [0, 0, 1.5000000000]) {
									translate(v = [0, 10.5000000000, 0]) {
										cube(center = true, size = [25.0000000000, 4, 3]);
									}
								}
							}
							rotate(a = 270) {
								translate(v = [0, 0, 1.5000000000]) {
									translate(v = [0, 10.5000000000, 0]) {
										cube(center = true, size = [25.0000000000, 4, 3]);
									}
								}
							}
						}
					}
				}
				translate(v = [-84.0000000000, 0, 0]) {
					translate(v = [0, 21.0000000000, 0]) {
						union() {
							translate(v = [0, 7.7500000000, 0]) {
								translate(v = [0, 0, 1.5000000000]) {
									difference() {
										cube(center = true, size = [17.0000000000, 1.5000000000, 3]);
										translate(v = [0, 0, -1.3000000000]) {
											translate(v = [0, -0.7500000000, 0]) {
												cube(center = true, size = [5, 1.0000000000, 3]);
											}
										}
									}
								}
							}
							translate(v = [-7.7500000000, 0, 0]) {
								translate(v = [0, 0, 1.5000000000]) {
									cube(center = true, size = [1.5000000000, 17.0000000000, 3]);
								}
							}
							mirror(v = [0, 1, 0]) {
								mirror(v = [1, 0, 0]) {
									union() {
										translate(v = [0, 7.7500000000, 0]) {
											translate(v = [0, 0, 1.5000000000]) {
												difference() {
													cube(center = true, size = [17.0000000000, 1.5000000000, 3]);
													translate(v = [0, 0, -1.3000000000]) {
														translate(v = [0, -0.7500000000, 0]) {
															cube(center = true, size = [5, 1.0000000000, 3]);
														}
													}
												}
											}
										}
										translate(v = [-7.7500000000, 0, 0]) {
											translate(v = [0, 0, 1.5000000000]) {
												cube(center = true, size = [1.5000000000, 17.0000000000, 3]);
											}
										}
									}
								}
							}
							translate(v = [0, 0, 1.5000000000]) {
								translate(v = [0, 10.5000000000, 0]) {
									cube(center = true, size = [25.0000000000, 4, 3]);
								}
							}
							rotate(a = 90) {
								translate(v = [0, 0, 1.5000000000]) {
									translate(v = [0, 10.5000000000, 0]) {
										cube(center = true, size = [25.0000000000, 4, 3]);
									}
								}
							}
							rotate(a = 180) {
								translate(v = [0, 0, 1.5000000000]) {
									translate(v = [0, 10.5000000000, 0]) {
										cube(center = true, size = [25.0000000000, 4, 3]);
									}
								}
							}
							rotate(a = 270) {
								translate(v = [0, 0, 1.5000000000]) {
									translate(v = [0, 10.5000000000, 0]) {
										cube(center = true, size = [25.0000000000, 4, 3]);
									}
								}
							}
						}
					}
				}
				translate(v = [-105.0000000000, 0, 0]) {
					translate(v = [0, 21.0000000000, 0]) {
						union() {
							translate(v = [0, 7.7500000000, 0]) {
								translate(v = [0, 0, 1.5000000000]) {
									difference() {
										cube(center = true, size = [17.0000000000, 1.5000000000, 3]);
										translate(v = [0, 0, -1.3000000000]) {
											translate(v = [0, -0.7500000000, 0]) {
												cube(center = true, size = [5, 1.0000000000, 3]);
											}
										}
									}
								}
							}
							translate(v = [-7.7500000000, 0, 0]) {
								translate(v = [0, 0, 1.5000000000]) {
									cube(center = true, size = [1.5000000000, 17.0000000000, 3]);
								}
							}
							mirror(v = [0, 1, 0]) {
								mirror(v = [1, 0, 0]) {
									union() {
										translate(v = [0, 7.7500000000, 0]) {
											translate(v = [0, 0, 1.5000000000]) {
												difference() {
													cube(center = true, size = [17.0000000000, 1.5000000000, 3]);
													translate(v = [0, 0, -1.3000000000]) {
														translate(v = [0, -0.7500000000, 0]) {
															cube(center = true, size = [5, 1.0000000000, 3]);
														}
													}
												}
											}
										}
										translate(v = [-7.7500000000, 0, 0]) {
											translate(v = [0, 0, 1.5000000000]) {
												cube(center = true, size = [1.5000000000, 17.0000000000, 3]);
											}
										}
									}
								}
							}
							translate(v = [0, 0, 1.5000000000]) {
								translate(v = [0, 10.5000000000, 0]) {
									cube(center = true, size = [25.0000000000, 4, 3]);
								}
							}
							rotate(a = 90) {
								translate(v = [0, 0, 1.5000000000]) {
									translate(v = [0, 10.5000000000, 0]) {
										cube(center = true, size = [25.0000000000, 4, 3]);
									}
								}
							}
							rotate(a = 180) {
								translate(v = [0, 0, 1.5000000000]) {
									translate(v = [0, 10.5000000000, 0]) {
										cube(center = true, size = [25.0000000000, 4, 3]);
									}
								}
							}
							rotate(a = 270) {
								translate(v = [0, 0, 1.5000000000]) {
									translate(v = [0, 10.5000000000, 0]) {
										cube(center = true, size = [25.0000000000, 4, 3]);
									}
								}
							}
						}
					}
				}
				translate(v = [-126.0000000000, 0, 0]) {
					translate(v = [0, 21.0000000000, 0]) {
						union() {
							translate(v = [0, 7.7500000000, 0]) {
								translate(v = [0, 0, 1.5000000000]) {
									difference() {
										cube(center = true, size = [17.0000000000, 1.5000000000, 3]);
										translate(v = [0, 0, -1.3000000000]) {
											translate(v = [0, -0.7500000000, 0]) {
												cube(center = true, size = [5, 1.0000000000, 3]);
											}
										}
									}
								}
							}
							translate(v = [-7.7500000000, 0, 0]) {
								translate(v = [0, 0, 1.5000000000]) {
									cube(center = true, size = [1.5000000000, 17.0000000000, 3]);
								}
							}
							mirror(v = [0, 1, 0]) {
								mirror(v = [1, 0, 0]) {
									union() {
										translate(v = [0, 7.7500000000, 0]) {
											translate(v = [0, 0, 1.5000000000]) {
												difference() {
													cube(center = true, size = [17.0000000000, 1.5000000000, 3]);
													translate(v = [0, 0, -1.3000000000]) {
														translate(v = [0, -0.7500000000, 0]) {
															cube(center = true, size = [5, 1.0000000000, 3]);
														}
													}
												}
											}
										}
										translate(v = [-7.7500000000, 0, 0]) {
											translate(v = [0, 0, 1.5000000000]) {
												cube(center = true, size = [1.5000000000, 17.0000000000, 3]);
											}
										}
									}
								}
							}
							translate(v = [0, 0, 1.5000000000]) {
								translate(v = [0, 10.5000000000, 0]) {
									cube(center = true, size = [25.0000000000, 4, 3]);
								}
							}
							rotate(a = 90) {
								translate(v = [0, 0, 1.5000000000]) {
									translate(v = [0, 10.5000000000, 0]) {
										cube(center = true, size = [25.0000000000, 4, 3]);
									}
								}
							}
							rotate(a = 180) {
								translate(v = [0, 0, 1.5000000000]) {
									translate(v = [0, 10.5000000000, 0]) {
										cube(center = true, size = [25.0000000000, 4, 3]);
									}
								}
							}
							rotate(a = 270) {
								translate(v = [0, 0, 1.5000000000]) {
									translate(v = [0, 10.5000000000, 0]) {
										cube(center = true, size = [25.0000000000, 4, 3]);
									}
								}
							}
						}
					}
				}
			}
		}
	}
}
/***********************************************
*********      SolidPython code:      **********
************************************************
 
#!/usr/bin/env python
import argparse
from os.path import abspath, dirname, join

from solid import *

from key_grid_tester import key_grid_tester


if __name__ == "__main__":
    parser = argparse.ArgumentParser(description="Process some integers.")
    parser.add_argument(
        "length",
        metavar="LENGTH",
        type=int,
        help="the length of the tester, in number of keys",
    )
    parser.add_argument(
        "width",
        metavar="WIDTH",
        type=int,
        help="the width of the tester, in number of keys",
    )
    parser.add_argument(
        "-o",
        "--output",
        metavar="FILE",
        type=str,
        default=None,
        help="the name of the file to write to",
    )

    args = parser.parse_args()

    filepath = join(
        dirname(dirname(abspath(__file__))),
        "files",
        args.output or f"key_grid_tester_{args.length}x{args.width}.scad",
    )

    print(f"Writing {args.length}x{args.width} key tester frame to {filepath} . . .")

    scad_render_to_file(
        key_grid_tester(args.length, args.width),
        filepath=filepath,
        include_orig_code=True,
    )
 
 
************************************************/
